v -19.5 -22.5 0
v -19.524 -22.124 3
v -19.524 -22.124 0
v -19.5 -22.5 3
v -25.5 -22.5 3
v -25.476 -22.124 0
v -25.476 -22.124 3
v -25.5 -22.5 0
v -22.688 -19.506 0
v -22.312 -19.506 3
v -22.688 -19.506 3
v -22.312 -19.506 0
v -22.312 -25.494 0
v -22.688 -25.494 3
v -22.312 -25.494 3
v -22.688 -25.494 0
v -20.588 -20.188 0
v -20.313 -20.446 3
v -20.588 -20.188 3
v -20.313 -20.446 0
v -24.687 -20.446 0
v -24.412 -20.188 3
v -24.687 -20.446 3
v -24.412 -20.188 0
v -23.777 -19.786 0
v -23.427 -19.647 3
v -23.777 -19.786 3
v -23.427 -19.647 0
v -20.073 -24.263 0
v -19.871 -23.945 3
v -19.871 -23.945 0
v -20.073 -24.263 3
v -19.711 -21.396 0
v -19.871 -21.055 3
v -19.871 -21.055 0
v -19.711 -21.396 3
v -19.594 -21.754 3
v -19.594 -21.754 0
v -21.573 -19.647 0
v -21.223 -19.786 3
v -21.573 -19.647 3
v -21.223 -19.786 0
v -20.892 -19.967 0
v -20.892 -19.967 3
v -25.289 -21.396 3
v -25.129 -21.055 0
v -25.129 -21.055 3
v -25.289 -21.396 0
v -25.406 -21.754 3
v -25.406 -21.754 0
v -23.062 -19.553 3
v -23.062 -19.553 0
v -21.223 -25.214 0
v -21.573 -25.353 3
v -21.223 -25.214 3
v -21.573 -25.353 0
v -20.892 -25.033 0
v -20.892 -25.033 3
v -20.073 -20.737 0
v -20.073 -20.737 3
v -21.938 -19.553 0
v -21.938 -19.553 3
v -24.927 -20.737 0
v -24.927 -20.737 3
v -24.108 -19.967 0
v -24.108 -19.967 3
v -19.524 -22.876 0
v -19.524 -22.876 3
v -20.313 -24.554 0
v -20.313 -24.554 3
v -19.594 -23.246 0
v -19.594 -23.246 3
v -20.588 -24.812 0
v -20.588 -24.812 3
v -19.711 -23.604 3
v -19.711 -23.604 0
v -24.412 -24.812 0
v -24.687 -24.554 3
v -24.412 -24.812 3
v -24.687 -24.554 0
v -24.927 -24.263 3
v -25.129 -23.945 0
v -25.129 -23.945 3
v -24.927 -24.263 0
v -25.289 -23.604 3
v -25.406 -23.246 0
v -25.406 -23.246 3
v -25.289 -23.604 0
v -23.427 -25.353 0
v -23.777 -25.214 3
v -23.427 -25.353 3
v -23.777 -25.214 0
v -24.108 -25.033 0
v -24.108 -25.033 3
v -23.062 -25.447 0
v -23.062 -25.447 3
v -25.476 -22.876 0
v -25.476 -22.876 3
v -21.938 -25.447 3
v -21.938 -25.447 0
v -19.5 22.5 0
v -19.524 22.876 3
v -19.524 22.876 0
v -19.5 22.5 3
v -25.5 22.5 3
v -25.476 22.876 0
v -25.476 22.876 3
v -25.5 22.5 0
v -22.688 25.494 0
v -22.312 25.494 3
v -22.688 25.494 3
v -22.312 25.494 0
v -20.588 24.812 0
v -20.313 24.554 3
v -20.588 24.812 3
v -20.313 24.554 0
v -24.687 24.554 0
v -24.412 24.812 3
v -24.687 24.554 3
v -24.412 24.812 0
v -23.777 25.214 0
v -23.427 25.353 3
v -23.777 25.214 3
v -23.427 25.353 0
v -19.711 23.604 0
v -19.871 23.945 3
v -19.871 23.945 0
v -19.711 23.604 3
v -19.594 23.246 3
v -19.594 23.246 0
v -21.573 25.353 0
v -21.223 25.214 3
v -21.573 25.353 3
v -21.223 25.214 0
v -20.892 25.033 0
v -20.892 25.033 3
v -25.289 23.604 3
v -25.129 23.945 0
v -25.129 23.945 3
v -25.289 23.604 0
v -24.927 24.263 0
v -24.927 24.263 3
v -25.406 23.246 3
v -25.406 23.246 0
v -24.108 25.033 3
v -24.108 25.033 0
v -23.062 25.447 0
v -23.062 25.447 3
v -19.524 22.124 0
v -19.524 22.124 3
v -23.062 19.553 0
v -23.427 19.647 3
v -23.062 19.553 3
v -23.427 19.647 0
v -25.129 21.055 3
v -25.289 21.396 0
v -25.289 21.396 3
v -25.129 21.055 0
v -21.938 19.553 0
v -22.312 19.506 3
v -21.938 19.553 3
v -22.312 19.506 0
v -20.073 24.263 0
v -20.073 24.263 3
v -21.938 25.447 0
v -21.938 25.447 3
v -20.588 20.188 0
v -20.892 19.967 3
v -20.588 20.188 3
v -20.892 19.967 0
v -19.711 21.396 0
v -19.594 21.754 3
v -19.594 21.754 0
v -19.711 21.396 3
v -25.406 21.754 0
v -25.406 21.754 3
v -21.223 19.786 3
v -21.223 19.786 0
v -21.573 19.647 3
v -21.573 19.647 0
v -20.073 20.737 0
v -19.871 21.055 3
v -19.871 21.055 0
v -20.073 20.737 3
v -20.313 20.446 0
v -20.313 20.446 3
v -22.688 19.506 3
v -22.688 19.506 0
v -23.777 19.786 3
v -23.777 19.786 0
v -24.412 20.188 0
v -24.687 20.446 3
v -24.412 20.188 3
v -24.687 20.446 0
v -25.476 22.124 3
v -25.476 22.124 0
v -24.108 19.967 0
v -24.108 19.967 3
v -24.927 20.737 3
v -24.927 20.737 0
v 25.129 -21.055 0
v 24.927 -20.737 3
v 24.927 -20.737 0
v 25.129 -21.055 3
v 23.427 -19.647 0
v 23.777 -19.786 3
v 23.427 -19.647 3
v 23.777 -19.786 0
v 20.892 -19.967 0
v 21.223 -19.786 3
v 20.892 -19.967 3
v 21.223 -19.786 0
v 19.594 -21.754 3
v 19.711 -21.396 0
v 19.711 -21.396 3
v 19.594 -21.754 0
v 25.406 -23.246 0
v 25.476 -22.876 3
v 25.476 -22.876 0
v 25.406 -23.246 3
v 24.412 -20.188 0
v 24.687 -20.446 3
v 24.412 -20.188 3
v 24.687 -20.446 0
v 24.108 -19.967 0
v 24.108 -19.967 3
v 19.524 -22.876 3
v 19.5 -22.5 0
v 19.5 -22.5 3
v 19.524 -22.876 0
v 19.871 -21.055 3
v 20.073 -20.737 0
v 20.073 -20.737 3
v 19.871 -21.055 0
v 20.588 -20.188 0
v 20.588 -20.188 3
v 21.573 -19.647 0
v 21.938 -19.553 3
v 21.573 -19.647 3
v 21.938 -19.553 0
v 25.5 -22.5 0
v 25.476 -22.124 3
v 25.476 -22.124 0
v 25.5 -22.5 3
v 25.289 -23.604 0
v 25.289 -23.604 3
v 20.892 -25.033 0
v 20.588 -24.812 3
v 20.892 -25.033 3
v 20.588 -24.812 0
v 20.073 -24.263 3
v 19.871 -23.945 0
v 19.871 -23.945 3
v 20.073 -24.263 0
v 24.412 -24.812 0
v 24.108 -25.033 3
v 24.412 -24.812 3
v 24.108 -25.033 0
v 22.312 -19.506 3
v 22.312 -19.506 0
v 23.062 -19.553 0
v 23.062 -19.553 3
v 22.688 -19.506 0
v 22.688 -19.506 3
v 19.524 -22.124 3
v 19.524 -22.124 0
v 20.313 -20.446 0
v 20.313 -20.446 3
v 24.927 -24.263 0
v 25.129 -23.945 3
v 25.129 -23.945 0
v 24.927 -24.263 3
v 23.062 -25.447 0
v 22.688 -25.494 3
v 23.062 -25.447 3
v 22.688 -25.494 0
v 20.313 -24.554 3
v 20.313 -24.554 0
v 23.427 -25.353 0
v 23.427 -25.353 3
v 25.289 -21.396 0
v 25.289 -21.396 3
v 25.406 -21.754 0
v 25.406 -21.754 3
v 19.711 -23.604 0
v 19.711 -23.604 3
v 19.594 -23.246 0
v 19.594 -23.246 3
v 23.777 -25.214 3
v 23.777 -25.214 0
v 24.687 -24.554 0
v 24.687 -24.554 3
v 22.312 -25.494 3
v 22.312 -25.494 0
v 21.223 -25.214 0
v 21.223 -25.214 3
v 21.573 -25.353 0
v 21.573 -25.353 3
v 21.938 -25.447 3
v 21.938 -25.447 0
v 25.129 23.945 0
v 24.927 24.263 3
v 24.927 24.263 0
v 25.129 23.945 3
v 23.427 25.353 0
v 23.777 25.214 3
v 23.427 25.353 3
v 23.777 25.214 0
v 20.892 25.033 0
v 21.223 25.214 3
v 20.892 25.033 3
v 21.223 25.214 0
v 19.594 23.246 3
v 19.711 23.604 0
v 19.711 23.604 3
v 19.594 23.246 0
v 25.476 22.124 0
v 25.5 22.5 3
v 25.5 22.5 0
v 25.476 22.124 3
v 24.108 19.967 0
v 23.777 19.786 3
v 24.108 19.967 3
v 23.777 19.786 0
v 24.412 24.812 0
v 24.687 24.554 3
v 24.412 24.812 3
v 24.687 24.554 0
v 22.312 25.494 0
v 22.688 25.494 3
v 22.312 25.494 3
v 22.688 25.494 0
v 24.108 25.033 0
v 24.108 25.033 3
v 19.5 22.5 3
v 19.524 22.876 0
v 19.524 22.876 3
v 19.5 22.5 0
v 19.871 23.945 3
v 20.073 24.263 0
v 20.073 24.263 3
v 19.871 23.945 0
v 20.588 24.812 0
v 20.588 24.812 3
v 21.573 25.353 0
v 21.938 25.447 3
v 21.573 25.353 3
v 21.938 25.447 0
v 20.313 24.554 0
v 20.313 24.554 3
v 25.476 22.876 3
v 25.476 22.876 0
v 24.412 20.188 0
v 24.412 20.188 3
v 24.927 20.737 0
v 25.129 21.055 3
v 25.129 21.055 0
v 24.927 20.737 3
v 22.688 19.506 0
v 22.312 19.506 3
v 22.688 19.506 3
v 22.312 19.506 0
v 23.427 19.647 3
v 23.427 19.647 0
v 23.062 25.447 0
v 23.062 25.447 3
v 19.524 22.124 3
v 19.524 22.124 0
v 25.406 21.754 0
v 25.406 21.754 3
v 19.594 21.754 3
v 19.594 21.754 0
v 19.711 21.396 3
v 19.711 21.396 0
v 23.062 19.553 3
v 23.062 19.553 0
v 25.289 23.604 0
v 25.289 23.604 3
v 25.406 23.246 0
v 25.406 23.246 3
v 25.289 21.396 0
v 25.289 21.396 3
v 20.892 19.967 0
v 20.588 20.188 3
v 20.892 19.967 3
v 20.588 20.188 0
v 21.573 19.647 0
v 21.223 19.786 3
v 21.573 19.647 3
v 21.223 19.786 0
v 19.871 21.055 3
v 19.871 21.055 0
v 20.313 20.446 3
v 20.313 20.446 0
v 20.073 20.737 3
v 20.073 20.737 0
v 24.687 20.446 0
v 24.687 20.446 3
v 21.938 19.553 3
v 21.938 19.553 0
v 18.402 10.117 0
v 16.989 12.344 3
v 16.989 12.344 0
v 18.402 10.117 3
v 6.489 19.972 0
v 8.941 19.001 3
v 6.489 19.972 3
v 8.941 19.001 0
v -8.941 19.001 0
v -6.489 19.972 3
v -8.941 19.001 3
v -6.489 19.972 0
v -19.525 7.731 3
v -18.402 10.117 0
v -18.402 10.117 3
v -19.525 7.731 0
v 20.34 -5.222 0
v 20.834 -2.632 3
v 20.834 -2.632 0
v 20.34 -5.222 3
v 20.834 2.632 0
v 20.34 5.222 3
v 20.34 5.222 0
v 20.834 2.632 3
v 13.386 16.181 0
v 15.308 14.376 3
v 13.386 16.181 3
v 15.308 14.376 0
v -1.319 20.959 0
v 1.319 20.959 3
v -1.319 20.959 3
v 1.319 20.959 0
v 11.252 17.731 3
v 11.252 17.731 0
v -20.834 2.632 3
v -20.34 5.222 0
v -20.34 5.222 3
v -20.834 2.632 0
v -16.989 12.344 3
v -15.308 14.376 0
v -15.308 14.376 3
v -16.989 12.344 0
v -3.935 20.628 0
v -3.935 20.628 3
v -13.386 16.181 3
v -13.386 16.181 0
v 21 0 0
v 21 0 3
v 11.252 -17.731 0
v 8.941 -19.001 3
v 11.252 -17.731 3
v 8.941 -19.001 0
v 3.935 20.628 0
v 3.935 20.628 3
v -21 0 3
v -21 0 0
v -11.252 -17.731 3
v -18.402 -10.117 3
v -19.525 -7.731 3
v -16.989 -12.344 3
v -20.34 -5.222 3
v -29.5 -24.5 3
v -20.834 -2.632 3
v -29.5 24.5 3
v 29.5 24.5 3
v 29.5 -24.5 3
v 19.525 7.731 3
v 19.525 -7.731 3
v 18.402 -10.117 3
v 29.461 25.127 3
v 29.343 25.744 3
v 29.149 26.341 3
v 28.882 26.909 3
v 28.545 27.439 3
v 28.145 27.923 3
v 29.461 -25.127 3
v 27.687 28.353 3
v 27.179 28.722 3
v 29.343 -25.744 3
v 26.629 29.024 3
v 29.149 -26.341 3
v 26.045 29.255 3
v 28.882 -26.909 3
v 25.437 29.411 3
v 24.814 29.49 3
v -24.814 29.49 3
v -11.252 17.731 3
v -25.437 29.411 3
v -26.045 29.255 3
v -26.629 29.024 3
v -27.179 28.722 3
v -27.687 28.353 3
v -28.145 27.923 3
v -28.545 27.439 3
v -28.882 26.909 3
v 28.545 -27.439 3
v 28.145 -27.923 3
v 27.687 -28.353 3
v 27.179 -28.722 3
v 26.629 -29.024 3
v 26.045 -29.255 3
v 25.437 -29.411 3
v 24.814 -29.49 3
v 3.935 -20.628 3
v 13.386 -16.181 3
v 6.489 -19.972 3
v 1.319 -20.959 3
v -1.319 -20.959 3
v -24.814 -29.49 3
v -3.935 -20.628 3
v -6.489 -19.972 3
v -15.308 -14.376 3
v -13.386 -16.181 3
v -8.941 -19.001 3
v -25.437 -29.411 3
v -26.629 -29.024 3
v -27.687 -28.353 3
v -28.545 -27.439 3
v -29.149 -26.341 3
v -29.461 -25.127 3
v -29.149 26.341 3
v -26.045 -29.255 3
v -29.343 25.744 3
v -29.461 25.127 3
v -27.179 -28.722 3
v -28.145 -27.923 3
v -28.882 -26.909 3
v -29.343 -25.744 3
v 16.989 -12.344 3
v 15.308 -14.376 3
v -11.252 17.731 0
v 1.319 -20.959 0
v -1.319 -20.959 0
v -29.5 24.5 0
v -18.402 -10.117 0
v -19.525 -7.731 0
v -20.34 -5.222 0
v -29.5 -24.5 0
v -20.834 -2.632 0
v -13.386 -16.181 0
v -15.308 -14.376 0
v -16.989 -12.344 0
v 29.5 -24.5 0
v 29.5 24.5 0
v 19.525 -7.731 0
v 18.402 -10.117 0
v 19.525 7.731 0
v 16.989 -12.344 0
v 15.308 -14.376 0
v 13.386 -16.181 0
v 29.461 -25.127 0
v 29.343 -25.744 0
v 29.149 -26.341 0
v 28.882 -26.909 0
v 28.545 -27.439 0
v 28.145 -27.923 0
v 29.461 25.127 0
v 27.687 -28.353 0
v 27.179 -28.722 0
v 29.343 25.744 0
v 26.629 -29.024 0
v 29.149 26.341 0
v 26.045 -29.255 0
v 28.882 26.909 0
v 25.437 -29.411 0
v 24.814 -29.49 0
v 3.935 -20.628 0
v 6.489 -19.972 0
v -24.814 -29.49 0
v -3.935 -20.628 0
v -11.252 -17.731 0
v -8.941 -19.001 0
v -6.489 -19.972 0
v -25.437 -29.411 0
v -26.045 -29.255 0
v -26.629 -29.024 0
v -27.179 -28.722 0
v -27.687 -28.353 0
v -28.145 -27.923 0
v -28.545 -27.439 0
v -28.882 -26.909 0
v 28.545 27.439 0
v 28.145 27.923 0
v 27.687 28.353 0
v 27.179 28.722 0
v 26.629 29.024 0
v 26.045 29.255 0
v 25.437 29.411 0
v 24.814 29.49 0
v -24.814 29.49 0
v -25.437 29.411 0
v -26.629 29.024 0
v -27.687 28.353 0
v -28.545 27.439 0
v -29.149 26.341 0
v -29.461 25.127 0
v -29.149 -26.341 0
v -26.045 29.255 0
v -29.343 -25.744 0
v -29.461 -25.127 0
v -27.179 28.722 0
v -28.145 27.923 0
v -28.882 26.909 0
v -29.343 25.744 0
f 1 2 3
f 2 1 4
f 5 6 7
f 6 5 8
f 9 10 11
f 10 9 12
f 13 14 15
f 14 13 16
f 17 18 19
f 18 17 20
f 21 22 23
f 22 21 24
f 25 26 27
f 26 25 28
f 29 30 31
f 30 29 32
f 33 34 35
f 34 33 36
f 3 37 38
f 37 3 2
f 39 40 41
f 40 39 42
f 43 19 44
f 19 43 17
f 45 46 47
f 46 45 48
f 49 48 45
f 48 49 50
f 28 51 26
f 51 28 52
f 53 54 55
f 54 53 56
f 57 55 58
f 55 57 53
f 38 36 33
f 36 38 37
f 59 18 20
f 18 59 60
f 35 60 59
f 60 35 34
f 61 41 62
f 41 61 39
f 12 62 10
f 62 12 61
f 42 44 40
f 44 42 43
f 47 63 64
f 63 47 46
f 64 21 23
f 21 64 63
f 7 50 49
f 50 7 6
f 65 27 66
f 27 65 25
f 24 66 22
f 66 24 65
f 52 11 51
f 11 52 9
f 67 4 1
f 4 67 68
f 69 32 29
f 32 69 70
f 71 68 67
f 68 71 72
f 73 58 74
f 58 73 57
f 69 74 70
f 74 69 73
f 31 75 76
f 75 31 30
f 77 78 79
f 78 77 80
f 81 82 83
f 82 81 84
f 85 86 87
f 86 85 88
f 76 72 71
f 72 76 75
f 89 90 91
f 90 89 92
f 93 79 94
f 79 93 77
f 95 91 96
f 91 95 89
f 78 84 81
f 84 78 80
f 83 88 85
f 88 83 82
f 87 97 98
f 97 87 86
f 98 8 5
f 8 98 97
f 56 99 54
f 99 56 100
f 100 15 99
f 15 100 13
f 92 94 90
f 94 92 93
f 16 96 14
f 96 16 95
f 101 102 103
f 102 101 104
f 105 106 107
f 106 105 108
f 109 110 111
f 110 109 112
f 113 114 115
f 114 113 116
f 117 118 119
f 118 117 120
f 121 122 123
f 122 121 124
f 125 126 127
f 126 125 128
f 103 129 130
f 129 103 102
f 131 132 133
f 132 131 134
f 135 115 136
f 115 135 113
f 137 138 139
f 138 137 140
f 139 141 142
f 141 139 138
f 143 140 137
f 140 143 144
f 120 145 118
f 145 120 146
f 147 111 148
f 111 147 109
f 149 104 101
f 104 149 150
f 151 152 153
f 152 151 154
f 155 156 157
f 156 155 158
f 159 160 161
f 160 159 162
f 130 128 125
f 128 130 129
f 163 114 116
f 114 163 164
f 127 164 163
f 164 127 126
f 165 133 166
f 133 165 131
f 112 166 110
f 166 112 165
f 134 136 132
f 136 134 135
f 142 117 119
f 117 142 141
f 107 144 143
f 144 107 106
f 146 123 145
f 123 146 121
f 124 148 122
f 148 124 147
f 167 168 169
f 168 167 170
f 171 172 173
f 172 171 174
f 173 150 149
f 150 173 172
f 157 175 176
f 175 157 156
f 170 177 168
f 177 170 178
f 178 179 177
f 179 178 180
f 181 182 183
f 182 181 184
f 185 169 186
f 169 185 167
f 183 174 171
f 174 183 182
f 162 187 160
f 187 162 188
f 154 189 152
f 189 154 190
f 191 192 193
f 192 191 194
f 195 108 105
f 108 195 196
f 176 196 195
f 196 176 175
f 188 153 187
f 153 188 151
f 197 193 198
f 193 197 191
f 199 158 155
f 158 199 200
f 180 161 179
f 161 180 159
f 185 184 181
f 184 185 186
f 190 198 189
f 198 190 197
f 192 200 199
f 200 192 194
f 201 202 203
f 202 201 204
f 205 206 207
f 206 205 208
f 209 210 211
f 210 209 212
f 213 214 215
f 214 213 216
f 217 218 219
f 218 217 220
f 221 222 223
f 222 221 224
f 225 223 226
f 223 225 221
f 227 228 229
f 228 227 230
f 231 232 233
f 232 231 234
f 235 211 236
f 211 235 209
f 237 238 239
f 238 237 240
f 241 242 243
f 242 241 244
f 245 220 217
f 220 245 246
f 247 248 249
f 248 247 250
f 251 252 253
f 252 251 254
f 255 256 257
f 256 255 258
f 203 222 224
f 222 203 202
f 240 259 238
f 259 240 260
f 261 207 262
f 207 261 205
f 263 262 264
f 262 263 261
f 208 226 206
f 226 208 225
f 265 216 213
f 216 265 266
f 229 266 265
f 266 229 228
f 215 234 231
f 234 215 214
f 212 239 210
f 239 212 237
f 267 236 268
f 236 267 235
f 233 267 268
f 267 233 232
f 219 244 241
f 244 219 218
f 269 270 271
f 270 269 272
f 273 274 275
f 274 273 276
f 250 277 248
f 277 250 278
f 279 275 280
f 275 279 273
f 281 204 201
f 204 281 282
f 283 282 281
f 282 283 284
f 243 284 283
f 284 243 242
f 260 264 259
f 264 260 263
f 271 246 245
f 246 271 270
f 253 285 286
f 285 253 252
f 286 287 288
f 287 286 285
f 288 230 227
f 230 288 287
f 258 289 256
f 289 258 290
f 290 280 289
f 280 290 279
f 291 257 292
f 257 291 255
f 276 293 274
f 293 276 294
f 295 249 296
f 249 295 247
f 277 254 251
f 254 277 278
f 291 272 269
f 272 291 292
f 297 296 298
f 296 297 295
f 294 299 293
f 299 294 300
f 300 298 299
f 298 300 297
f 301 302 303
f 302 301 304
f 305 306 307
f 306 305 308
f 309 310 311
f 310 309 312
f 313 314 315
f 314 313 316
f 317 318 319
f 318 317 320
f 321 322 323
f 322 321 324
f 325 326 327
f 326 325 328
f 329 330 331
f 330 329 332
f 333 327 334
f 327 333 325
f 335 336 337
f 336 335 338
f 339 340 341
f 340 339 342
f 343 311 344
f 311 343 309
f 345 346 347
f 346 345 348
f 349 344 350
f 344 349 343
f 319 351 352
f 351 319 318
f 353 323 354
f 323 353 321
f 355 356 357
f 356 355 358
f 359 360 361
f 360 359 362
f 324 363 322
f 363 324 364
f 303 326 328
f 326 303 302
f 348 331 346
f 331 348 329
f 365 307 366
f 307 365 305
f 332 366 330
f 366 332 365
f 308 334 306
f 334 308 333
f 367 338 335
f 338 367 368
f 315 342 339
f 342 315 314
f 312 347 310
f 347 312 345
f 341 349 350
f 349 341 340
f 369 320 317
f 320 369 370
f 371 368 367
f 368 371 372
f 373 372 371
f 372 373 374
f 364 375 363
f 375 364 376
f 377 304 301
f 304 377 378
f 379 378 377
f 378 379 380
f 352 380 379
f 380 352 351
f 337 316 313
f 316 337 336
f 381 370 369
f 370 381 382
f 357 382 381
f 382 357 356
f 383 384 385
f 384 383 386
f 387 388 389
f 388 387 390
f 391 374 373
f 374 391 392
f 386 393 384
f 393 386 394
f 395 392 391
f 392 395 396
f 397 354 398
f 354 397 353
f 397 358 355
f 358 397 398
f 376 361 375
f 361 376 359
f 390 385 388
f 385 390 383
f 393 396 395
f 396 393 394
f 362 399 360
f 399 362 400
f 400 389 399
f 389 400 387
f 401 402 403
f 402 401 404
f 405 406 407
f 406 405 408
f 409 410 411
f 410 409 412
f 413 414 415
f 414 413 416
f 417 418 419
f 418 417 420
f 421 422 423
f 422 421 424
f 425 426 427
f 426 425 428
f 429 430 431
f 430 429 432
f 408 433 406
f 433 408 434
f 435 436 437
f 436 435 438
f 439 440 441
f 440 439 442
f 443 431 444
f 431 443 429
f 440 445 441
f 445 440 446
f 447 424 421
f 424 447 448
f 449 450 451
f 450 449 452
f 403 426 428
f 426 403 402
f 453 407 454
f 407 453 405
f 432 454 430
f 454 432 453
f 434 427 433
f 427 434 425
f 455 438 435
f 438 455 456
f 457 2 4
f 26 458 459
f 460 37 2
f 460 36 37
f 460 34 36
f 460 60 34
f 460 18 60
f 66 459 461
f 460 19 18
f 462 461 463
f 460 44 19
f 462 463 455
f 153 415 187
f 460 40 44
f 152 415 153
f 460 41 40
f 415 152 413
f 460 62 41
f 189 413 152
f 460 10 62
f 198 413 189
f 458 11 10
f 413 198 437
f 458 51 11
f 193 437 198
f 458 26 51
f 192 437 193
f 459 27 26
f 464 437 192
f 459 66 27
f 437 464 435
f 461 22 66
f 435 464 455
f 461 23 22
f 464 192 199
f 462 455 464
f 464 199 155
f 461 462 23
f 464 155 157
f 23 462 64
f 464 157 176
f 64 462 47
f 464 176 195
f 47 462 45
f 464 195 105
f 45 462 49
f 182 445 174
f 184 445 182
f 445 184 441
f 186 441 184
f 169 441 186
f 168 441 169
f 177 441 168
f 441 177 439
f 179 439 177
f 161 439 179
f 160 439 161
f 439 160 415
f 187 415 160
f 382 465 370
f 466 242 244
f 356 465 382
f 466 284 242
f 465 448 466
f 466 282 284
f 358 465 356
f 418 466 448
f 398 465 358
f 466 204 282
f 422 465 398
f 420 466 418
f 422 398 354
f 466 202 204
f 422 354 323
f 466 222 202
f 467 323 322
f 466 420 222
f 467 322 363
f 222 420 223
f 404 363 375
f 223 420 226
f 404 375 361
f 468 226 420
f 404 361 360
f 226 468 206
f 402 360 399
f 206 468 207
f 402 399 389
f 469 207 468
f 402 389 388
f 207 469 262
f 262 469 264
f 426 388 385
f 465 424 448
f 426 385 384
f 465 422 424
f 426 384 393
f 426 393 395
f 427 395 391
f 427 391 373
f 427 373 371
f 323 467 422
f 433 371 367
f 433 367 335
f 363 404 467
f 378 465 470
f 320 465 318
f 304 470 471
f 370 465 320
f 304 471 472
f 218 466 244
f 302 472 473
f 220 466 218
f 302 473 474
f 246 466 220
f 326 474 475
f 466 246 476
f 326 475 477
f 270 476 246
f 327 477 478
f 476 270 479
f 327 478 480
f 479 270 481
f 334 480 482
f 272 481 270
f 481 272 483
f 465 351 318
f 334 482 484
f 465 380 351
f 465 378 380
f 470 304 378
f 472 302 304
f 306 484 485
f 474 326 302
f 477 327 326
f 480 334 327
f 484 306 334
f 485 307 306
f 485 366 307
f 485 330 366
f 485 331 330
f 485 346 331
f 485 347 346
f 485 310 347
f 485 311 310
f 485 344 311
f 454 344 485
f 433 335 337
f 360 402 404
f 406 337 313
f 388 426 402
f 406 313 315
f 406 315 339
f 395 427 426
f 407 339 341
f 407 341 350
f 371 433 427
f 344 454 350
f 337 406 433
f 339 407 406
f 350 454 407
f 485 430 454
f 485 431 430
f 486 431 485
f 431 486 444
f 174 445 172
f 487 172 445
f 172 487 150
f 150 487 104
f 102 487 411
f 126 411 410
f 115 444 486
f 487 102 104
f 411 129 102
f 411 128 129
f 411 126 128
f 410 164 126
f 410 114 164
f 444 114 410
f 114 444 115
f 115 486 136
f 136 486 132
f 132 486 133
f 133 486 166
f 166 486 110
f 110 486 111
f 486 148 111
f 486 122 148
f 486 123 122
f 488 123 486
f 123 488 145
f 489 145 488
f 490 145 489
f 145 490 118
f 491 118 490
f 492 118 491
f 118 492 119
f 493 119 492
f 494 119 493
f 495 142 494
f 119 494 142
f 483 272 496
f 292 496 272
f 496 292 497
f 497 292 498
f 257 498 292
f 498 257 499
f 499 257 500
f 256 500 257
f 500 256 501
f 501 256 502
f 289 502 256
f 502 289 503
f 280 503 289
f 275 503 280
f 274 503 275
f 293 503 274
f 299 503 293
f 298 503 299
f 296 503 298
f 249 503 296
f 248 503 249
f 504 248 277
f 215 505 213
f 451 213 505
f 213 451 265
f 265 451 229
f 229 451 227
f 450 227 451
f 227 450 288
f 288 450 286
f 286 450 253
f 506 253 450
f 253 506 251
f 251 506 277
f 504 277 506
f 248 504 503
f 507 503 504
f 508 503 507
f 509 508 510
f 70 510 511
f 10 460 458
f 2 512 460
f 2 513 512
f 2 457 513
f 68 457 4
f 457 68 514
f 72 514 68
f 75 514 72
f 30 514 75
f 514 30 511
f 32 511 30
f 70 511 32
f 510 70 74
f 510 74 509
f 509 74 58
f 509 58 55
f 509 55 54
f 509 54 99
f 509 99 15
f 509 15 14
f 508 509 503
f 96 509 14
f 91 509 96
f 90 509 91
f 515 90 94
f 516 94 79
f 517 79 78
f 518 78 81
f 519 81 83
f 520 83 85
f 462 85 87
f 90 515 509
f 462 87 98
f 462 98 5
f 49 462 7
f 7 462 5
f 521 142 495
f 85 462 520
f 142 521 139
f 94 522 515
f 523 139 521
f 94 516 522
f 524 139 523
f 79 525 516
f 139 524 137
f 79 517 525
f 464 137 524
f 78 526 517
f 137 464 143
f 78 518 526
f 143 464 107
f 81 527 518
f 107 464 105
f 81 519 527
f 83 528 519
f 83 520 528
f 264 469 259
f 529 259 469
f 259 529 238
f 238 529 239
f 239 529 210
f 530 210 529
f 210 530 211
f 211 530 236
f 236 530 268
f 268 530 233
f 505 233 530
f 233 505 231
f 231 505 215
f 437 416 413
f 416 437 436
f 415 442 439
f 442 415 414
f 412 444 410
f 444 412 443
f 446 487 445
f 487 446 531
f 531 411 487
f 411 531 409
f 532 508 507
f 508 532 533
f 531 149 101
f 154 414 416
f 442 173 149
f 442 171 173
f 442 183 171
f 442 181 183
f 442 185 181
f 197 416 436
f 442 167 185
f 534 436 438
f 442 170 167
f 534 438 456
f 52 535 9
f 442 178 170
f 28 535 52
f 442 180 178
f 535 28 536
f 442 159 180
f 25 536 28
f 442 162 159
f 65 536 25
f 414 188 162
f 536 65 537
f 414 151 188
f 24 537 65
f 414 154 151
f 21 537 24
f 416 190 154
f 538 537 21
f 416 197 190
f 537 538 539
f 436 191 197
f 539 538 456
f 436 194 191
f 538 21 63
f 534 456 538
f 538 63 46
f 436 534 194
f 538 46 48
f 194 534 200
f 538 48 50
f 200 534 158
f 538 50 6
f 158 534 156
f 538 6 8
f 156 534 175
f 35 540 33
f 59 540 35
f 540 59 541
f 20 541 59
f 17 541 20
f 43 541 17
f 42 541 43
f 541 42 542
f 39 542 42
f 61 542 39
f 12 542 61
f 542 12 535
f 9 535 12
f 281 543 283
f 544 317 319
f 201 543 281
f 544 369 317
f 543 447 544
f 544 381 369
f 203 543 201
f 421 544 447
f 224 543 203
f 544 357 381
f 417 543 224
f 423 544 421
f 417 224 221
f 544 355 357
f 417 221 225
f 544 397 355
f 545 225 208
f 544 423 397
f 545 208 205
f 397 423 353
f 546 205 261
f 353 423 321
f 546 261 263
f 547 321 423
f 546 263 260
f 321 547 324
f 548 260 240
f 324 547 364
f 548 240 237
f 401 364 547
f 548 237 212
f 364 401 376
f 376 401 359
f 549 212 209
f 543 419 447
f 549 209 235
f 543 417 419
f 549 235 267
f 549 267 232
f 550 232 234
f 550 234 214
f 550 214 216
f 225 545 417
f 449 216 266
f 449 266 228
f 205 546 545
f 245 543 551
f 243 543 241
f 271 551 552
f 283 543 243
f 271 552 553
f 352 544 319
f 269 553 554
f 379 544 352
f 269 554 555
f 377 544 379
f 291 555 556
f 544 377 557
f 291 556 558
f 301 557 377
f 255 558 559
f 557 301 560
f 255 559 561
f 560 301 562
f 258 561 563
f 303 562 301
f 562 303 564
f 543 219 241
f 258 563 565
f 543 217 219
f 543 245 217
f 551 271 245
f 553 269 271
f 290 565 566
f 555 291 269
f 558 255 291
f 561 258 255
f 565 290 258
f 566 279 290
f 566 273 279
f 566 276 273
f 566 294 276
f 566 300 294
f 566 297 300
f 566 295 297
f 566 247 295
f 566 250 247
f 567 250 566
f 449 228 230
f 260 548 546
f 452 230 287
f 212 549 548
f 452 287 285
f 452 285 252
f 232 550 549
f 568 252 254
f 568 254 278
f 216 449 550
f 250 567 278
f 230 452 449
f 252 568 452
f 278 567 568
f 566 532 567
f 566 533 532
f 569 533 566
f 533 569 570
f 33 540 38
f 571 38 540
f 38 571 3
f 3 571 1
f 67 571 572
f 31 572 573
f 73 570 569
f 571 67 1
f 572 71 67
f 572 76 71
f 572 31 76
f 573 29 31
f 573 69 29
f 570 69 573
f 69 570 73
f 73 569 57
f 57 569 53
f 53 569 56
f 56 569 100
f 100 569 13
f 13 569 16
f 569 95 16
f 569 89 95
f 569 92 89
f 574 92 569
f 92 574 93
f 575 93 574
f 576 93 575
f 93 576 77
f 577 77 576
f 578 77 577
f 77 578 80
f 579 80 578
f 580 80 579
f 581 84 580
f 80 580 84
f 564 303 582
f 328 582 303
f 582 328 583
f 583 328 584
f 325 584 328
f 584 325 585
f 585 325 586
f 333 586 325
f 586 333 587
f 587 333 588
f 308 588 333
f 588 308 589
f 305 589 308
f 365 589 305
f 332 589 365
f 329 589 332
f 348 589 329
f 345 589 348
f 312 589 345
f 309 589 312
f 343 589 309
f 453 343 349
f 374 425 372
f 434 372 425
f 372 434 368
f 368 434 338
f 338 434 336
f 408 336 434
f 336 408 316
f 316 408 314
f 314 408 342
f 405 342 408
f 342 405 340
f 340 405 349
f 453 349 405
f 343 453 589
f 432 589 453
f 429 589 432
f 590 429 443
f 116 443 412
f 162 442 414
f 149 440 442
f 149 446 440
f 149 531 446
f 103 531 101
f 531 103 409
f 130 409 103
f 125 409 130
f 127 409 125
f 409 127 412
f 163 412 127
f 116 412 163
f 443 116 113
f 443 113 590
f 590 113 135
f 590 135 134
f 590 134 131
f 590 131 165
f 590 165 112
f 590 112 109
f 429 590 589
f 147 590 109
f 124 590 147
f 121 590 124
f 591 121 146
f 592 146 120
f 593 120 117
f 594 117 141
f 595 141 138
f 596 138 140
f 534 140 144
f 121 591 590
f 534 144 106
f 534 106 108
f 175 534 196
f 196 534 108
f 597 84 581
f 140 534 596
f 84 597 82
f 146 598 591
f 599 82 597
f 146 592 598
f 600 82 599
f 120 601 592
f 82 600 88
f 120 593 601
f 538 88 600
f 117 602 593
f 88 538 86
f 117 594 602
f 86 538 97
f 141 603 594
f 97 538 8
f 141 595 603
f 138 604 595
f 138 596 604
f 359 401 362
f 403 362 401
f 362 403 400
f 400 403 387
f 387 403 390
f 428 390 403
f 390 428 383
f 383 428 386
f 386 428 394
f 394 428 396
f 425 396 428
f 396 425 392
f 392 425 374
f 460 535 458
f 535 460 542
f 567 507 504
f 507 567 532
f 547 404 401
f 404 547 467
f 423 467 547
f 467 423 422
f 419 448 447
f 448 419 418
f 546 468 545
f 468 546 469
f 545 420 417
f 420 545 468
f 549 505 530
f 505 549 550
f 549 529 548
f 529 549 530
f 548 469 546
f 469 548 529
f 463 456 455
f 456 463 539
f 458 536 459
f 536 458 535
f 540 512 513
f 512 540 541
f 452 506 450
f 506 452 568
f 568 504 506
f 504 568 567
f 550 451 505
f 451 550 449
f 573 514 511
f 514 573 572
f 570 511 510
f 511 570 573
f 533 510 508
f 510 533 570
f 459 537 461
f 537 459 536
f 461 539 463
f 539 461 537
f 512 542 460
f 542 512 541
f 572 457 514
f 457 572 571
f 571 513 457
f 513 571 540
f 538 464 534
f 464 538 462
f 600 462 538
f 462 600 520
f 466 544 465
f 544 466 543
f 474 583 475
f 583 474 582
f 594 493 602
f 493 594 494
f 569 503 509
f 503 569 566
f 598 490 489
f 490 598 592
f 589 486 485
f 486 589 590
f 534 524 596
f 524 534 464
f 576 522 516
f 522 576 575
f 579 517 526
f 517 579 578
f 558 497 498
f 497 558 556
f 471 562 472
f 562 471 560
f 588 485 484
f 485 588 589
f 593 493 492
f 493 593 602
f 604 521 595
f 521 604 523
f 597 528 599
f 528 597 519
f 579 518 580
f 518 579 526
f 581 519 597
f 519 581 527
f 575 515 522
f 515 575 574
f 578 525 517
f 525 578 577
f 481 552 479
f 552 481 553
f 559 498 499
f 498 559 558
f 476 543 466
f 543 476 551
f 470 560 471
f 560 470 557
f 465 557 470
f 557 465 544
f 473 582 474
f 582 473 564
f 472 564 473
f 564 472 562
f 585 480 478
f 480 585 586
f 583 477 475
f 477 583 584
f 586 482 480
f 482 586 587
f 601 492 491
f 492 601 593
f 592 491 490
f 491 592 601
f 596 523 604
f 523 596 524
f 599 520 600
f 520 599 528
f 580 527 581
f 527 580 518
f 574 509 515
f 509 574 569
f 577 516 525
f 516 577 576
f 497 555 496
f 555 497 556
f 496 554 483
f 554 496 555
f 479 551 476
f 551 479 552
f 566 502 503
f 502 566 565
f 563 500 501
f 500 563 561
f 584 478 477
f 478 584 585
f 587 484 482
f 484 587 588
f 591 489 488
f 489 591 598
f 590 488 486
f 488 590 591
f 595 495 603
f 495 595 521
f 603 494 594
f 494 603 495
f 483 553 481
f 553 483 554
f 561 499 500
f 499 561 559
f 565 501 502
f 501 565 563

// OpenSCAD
$fn = 50;


difference() {
	union() {
		hull() {
			translate(v = [-24.5000000000, 24.5000000000, 0]) {
				cylinder(h = 3, r = 5);
			}
			translate(v = [24.5000000000, 24.5000000000, 0]) {
				cylinder(h = 3, r = 5);
			}
			translate(v = [-24.5000000000, -24.5000000000, 0]) {
				cylinder(h = 3, r = 5);
			}
			translate(v = [24.5000000000, -24.5000000000, 0]) {
				cylinder(h = 3, r = 5);
			}
		}
	}
	union() {
		#translate(v = [-22.5000000000, -22.5000000000, -100.0000000000]) {
			cylinder(h = 200, r = 3.0000000000);
		}
		#translate(v = [-22.5000000000, 22.5000000000, -100.0000000000]) {
			cylinder(h = 200, r = 3.0000000000);
		}
		#translate(v = [22.5000000000, -22.5000000000, -100.0000000000]) {
			cylinder(h = 200, r = 3.0000000000);
		}
		#translate(v = [22.5000000000, 22.5000000000, -100.0000000000]) {
			cylinder(h = 200, r = 3.0000000000);
		}
		#cylinder(h = 3, r = 21.0000000000);
	}
}
